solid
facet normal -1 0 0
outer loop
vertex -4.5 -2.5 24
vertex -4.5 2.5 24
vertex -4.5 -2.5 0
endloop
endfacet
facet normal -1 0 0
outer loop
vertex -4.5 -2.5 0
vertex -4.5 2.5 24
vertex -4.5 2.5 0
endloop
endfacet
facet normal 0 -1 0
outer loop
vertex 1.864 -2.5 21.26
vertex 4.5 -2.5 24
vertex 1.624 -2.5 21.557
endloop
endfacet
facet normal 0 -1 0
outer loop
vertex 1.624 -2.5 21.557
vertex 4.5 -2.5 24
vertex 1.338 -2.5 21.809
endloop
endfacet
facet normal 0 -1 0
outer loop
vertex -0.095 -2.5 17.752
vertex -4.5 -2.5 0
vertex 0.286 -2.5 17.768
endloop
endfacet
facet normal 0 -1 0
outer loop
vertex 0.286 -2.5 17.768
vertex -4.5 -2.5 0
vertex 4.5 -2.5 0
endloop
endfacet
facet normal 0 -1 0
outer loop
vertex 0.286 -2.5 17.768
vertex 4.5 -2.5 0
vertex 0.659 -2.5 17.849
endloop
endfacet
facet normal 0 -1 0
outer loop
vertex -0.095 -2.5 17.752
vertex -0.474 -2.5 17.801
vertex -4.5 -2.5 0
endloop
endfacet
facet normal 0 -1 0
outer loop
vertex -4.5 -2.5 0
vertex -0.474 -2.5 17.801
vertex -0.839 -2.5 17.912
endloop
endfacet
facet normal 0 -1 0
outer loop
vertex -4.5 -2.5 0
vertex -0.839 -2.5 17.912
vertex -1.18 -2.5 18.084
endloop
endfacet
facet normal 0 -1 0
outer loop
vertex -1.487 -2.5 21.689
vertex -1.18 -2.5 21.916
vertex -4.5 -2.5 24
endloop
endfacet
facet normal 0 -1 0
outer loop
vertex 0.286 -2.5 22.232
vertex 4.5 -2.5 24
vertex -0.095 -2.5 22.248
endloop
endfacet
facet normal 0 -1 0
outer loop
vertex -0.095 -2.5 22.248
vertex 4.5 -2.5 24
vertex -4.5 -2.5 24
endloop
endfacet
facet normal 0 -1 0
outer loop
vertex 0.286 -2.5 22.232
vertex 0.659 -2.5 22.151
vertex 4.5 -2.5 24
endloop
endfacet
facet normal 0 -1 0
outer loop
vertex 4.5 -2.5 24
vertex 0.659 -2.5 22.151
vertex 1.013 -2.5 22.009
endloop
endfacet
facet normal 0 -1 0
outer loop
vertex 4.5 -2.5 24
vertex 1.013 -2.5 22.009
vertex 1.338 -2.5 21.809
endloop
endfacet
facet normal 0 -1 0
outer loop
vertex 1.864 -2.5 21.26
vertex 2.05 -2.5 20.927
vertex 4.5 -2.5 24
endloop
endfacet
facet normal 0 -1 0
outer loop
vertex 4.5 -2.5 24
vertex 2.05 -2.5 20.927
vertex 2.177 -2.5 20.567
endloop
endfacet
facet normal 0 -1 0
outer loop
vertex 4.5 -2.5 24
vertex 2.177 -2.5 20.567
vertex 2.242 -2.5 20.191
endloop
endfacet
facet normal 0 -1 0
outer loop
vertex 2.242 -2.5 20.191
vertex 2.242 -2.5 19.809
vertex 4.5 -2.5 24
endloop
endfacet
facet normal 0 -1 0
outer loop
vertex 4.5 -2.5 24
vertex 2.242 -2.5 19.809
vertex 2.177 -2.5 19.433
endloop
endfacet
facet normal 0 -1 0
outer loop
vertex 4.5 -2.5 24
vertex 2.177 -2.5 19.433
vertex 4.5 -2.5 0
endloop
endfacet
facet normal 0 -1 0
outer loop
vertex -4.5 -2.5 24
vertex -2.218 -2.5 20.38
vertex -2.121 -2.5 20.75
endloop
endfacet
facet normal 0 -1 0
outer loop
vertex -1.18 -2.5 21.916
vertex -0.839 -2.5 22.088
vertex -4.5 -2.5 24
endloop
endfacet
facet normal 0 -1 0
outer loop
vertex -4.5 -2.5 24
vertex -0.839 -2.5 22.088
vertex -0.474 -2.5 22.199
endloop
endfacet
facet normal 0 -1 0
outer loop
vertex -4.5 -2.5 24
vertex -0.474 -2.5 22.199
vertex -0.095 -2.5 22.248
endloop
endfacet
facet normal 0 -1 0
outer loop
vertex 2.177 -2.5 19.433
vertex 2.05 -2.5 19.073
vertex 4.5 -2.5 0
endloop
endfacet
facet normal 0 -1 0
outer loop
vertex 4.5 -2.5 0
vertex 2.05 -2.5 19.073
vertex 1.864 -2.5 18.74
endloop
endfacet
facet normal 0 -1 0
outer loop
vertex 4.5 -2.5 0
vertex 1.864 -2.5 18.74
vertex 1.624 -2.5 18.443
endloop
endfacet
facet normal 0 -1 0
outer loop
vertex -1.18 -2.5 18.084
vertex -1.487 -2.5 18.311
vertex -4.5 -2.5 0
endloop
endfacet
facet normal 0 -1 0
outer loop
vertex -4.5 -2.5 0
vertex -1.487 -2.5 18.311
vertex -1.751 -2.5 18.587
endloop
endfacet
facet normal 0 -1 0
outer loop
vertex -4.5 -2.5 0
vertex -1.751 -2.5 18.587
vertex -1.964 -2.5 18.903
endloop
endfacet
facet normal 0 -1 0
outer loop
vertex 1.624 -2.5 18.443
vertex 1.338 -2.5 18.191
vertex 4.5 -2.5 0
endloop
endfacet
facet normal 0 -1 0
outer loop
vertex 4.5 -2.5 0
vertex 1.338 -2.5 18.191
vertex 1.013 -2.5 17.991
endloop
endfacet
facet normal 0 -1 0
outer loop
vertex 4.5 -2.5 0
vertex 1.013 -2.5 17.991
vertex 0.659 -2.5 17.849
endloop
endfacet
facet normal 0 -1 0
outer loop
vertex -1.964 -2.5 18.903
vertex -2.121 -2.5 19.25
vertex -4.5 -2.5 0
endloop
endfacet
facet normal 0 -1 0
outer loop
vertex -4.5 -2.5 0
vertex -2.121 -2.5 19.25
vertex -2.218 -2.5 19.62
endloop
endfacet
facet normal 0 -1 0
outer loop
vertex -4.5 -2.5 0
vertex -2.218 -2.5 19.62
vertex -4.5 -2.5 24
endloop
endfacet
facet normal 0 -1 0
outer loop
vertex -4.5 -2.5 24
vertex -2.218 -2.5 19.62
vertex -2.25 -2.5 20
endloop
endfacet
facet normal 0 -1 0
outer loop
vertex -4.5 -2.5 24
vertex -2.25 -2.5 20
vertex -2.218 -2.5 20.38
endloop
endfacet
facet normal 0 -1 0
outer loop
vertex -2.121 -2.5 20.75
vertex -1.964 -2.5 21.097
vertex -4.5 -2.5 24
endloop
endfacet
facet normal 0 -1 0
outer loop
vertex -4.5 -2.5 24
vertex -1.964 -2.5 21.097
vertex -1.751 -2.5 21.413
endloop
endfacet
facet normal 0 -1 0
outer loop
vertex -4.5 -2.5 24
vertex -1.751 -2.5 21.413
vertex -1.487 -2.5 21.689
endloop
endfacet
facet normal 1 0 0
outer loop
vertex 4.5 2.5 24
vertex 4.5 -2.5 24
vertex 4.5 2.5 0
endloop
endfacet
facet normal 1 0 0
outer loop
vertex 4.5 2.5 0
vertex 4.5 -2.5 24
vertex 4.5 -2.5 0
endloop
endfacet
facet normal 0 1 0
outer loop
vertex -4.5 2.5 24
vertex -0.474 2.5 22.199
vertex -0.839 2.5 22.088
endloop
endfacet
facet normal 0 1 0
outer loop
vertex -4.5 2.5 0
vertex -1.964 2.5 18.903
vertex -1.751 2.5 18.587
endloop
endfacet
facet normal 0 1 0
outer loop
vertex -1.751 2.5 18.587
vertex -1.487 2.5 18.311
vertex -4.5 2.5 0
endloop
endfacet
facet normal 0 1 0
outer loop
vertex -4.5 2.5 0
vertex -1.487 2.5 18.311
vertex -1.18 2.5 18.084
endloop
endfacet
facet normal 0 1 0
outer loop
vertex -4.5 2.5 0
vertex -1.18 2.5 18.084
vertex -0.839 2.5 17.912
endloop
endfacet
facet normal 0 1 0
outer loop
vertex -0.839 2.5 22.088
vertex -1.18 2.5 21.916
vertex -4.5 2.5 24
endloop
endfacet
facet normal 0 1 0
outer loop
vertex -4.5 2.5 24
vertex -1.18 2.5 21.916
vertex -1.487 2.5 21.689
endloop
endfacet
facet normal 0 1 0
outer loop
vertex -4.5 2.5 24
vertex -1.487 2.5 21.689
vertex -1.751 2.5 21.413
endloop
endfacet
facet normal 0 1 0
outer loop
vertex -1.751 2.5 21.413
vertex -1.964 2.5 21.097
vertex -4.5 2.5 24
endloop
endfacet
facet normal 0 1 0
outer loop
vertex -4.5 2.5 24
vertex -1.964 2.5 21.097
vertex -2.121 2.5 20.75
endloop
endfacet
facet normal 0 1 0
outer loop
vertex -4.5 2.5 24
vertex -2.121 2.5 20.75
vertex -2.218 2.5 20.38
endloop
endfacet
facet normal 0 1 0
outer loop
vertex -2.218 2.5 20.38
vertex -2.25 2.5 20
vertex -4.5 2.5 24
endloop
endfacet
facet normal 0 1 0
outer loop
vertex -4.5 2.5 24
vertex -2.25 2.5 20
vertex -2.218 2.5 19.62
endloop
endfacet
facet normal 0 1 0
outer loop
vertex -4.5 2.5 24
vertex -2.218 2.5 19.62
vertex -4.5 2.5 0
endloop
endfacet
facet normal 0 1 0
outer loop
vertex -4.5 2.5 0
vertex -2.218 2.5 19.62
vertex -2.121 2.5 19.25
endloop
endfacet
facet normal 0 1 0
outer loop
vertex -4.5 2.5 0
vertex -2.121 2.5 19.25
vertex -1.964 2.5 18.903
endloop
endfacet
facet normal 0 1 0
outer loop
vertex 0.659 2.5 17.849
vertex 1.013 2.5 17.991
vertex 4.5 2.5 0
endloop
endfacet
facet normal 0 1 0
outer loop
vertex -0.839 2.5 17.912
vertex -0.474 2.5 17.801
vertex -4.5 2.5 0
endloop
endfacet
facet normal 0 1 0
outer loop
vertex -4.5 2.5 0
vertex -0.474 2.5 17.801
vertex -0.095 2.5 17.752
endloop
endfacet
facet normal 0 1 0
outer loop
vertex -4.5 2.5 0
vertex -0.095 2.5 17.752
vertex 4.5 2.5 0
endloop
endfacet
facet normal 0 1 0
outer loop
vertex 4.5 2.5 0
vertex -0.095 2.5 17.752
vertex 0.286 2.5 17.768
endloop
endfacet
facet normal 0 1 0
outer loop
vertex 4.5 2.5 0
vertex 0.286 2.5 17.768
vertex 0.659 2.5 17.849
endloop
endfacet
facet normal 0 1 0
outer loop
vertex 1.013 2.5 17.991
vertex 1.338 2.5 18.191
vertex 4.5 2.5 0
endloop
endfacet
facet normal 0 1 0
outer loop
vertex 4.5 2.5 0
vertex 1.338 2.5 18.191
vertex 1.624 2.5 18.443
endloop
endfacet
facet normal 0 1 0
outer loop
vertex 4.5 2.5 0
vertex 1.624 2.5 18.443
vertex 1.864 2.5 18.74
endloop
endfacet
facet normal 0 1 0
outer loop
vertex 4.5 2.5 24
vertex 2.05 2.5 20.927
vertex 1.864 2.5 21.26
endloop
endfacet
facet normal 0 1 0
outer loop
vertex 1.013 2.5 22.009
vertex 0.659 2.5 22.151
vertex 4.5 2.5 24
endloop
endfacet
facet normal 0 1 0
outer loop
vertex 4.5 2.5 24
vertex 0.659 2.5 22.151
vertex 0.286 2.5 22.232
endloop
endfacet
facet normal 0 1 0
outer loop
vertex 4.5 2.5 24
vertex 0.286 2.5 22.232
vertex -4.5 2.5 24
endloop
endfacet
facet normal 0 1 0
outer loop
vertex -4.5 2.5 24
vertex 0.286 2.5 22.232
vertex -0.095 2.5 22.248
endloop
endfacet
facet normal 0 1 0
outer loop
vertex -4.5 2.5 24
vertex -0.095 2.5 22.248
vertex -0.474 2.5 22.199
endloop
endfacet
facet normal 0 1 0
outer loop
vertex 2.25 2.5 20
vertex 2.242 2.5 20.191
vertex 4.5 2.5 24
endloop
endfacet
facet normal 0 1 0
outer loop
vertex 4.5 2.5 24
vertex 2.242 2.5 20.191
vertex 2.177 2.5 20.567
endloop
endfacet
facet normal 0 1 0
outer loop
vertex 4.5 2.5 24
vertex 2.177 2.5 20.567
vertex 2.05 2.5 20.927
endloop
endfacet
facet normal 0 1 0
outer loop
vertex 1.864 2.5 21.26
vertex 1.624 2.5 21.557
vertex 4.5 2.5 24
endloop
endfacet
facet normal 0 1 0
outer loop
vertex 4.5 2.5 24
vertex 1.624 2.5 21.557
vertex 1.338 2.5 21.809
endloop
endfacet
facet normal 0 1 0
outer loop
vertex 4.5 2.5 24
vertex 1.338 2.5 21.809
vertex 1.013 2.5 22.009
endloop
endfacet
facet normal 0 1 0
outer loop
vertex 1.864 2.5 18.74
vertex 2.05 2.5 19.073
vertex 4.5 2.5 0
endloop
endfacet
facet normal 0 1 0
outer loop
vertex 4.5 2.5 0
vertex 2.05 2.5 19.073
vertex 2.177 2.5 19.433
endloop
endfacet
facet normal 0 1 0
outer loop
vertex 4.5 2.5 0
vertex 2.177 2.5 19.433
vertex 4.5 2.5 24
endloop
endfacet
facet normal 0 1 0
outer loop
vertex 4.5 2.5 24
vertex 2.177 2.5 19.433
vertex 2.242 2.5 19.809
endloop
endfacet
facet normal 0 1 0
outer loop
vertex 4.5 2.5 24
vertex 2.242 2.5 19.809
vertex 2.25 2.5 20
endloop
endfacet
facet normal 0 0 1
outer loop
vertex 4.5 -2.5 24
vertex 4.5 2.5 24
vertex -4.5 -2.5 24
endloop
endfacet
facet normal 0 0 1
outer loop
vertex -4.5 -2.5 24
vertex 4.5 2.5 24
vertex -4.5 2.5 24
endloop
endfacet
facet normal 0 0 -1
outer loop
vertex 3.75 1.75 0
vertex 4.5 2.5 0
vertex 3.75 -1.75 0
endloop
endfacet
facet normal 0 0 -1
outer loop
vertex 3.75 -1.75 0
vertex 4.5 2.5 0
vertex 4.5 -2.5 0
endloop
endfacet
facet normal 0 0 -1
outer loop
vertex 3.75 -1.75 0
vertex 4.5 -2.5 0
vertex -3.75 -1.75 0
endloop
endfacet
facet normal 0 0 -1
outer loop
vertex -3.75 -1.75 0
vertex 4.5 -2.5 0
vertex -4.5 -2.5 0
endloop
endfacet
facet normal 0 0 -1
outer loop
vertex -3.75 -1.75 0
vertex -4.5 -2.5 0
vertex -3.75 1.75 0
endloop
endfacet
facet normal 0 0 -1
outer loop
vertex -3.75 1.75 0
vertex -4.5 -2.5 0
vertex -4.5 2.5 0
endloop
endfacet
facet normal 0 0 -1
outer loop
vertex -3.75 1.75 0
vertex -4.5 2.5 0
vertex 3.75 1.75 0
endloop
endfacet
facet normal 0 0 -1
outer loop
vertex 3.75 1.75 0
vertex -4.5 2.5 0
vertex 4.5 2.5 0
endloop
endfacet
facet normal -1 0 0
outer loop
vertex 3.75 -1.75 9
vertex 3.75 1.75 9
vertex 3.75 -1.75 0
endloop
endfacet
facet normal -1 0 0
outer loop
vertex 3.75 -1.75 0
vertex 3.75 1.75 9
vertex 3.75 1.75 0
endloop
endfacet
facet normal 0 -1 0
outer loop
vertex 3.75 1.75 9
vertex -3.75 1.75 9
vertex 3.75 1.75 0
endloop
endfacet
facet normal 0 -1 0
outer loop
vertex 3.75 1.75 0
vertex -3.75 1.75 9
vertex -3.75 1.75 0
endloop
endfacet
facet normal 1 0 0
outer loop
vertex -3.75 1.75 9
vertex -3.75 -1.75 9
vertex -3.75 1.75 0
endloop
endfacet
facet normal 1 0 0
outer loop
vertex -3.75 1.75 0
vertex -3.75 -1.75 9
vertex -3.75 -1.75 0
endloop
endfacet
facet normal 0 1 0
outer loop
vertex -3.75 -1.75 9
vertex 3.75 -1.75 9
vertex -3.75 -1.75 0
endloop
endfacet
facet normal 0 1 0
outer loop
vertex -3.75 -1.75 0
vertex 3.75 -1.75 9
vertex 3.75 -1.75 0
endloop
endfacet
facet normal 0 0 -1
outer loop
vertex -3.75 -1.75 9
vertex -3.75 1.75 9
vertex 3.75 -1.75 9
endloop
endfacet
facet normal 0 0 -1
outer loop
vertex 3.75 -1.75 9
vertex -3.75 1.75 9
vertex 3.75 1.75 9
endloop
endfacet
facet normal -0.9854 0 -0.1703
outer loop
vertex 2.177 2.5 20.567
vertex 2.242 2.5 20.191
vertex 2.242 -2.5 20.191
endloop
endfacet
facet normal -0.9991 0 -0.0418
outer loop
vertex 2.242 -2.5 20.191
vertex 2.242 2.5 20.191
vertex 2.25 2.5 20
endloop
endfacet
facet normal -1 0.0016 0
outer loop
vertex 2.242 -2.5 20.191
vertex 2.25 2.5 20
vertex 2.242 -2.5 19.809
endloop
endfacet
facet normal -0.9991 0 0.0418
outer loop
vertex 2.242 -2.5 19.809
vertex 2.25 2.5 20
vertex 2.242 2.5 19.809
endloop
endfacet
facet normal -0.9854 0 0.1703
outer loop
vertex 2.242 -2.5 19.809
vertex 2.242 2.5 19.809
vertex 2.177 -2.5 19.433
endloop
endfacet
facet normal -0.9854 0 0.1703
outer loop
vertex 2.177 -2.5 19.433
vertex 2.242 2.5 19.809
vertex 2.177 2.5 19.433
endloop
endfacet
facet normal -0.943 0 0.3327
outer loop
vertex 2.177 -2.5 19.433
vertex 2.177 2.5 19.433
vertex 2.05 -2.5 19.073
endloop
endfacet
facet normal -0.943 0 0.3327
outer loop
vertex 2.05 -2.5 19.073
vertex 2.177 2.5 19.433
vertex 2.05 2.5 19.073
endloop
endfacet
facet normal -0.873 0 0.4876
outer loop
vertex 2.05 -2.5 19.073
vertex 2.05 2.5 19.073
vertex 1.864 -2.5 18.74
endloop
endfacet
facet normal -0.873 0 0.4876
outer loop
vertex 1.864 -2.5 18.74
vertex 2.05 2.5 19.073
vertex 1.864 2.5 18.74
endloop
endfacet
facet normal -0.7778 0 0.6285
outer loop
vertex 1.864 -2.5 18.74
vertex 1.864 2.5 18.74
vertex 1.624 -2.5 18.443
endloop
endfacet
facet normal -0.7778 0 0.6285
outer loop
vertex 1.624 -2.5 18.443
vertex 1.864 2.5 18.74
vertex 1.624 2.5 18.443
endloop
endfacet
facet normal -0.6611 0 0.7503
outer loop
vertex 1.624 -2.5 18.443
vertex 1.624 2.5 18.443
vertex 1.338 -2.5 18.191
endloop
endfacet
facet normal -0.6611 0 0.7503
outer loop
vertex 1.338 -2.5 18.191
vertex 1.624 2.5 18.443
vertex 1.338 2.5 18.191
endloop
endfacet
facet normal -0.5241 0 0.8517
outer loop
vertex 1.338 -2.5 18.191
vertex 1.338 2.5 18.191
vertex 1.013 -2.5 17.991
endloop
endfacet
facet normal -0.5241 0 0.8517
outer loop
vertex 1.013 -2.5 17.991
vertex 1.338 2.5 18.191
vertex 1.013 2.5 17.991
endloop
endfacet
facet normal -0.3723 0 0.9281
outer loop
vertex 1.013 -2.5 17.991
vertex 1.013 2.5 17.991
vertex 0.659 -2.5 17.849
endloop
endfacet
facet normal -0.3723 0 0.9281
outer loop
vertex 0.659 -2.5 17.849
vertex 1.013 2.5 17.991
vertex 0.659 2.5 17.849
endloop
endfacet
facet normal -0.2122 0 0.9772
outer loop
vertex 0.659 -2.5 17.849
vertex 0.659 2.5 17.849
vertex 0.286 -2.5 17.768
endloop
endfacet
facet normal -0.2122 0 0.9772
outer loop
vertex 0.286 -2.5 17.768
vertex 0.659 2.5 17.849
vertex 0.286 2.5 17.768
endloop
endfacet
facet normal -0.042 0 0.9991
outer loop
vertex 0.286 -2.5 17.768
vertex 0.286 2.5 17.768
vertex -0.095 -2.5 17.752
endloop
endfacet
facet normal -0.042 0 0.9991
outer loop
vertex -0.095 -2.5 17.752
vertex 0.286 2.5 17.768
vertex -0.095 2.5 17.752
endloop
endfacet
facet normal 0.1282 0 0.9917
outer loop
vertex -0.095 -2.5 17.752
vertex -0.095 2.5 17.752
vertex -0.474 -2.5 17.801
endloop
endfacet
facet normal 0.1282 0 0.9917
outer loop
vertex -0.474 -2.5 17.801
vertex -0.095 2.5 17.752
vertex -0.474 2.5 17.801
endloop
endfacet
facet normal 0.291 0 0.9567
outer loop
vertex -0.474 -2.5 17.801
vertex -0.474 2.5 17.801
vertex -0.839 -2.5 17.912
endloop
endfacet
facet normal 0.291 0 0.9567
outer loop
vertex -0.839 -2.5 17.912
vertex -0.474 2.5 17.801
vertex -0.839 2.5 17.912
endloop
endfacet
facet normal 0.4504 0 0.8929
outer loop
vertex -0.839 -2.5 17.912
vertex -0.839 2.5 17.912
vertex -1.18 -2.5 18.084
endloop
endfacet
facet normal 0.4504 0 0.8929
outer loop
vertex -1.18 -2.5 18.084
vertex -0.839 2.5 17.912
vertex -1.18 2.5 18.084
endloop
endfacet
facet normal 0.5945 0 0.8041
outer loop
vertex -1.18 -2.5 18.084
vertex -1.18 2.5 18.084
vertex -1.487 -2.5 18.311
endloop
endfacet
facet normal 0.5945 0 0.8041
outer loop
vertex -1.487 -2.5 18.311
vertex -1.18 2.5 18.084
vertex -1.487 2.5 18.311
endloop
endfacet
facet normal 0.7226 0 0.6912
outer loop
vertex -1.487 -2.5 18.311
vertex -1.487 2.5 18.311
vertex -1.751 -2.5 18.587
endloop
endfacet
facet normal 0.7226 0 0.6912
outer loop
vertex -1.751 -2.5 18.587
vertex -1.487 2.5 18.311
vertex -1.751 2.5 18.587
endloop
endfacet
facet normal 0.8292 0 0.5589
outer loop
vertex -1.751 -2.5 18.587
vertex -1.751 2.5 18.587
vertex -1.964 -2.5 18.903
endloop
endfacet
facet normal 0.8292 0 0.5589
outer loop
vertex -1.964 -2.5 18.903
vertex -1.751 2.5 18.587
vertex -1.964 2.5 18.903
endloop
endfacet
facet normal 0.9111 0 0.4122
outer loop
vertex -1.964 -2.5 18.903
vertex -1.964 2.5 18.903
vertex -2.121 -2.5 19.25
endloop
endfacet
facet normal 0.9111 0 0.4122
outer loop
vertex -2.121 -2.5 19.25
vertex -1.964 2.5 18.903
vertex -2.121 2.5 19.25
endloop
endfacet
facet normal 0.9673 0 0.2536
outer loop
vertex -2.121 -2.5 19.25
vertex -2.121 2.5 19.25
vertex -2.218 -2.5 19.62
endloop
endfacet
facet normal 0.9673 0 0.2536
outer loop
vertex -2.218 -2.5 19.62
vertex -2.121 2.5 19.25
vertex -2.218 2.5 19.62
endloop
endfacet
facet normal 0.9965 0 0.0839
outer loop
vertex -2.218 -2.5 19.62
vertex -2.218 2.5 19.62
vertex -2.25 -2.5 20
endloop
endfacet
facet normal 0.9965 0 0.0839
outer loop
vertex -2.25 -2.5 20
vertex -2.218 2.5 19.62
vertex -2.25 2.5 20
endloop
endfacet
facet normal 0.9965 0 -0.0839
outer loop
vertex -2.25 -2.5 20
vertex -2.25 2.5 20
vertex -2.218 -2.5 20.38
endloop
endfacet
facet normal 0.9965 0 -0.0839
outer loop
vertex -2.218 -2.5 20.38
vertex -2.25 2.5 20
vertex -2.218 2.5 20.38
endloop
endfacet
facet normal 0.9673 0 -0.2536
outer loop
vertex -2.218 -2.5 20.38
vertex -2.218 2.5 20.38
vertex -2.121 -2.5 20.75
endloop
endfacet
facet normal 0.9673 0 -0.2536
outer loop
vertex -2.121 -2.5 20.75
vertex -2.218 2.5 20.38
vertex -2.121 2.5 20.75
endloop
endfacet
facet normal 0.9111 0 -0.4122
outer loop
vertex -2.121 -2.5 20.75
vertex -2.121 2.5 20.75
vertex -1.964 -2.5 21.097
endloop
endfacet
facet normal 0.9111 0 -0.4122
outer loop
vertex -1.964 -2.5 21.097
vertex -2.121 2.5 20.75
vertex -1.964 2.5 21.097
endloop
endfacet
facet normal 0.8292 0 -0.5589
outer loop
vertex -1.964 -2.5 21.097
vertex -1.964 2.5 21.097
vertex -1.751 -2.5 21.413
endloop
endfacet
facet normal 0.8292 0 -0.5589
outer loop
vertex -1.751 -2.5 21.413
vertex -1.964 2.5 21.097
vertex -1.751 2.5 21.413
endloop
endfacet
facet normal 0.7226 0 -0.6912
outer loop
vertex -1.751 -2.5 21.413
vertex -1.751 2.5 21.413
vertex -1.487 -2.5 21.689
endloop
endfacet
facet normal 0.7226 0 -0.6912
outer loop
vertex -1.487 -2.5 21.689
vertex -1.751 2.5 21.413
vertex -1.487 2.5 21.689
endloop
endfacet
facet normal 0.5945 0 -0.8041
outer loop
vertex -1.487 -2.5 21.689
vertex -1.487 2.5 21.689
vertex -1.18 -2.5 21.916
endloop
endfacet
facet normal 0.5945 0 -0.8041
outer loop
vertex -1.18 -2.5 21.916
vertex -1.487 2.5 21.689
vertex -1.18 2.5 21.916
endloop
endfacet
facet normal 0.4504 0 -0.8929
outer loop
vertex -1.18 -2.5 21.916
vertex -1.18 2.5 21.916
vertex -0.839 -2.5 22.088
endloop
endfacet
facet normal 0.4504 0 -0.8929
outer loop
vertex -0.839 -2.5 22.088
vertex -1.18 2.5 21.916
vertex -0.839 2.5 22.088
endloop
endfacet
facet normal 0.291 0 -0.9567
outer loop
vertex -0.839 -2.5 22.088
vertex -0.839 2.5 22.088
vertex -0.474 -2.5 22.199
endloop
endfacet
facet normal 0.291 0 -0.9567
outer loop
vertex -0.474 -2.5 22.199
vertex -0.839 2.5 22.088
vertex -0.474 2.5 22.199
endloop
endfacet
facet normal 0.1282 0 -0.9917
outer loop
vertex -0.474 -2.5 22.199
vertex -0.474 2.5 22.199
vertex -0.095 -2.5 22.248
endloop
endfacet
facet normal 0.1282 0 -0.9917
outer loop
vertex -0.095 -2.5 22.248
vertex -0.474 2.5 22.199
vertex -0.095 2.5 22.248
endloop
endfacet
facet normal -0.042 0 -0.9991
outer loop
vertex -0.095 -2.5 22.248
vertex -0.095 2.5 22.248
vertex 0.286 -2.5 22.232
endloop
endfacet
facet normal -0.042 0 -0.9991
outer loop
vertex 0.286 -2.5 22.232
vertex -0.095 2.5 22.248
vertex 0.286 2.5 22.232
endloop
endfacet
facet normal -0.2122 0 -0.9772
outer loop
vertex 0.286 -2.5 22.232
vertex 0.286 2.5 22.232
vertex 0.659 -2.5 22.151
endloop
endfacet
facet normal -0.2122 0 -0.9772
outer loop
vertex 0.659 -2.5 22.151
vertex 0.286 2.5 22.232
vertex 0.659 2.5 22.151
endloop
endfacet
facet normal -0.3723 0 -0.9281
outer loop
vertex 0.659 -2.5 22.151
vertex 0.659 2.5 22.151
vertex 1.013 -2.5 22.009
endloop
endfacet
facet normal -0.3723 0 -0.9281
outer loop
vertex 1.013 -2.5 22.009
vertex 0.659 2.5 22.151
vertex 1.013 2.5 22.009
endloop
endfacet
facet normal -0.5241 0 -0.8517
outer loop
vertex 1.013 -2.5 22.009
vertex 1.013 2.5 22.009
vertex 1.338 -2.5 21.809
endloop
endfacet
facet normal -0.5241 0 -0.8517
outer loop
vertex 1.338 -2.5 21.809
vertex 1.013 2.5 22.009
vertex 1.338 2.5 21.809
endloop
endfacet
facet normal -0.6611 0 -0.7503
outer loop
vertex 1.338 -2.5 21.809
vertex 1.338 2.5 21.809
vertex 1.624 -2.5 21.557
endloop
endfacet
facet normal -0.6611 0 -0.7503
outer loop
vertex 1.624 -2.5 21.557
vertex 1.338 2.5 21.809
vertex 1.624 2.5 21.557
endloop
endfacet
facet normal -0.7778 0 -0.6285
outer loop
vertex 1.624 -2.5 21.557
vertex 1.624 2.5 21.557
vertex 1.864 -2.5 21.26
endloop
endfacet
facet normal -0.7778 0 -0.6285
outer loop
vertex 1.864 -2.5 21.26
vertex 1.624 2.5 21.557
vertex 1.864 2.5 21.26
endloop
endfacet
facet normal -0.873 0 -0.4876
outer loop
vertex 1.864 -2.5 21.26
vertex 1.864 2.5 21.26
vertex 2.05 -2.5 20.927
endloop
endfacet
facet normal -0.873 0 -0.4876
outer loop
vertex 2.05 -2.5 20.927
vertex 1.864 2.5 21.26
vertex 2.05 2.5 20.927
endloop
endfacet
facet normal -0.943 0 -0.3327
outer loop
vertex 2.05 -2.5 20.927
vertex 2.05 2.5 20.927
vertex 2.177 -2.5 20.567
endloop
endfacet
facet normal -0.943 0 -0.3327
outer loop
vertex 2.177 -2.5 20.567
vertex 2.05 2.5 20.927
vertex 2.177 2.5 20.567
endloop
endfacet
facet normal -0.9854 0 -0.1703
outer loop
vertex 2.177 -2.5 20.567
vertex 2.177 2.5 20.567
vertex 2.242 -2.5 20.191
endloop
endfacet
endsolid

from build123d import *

# Parameters (mm, degrees)
CROQUIS1_W              = 9
CROQUIS1_H              = 5
SALIENTE_EXTRUIR1_DEPTH = 24
CROQUIS2_W              = 7.5
CROQUIS2_H              = 3.5
CORTAR_EXTRUIR1_DEPTH   = 9
CROQUIS3_R              = 2.25
CORTAR_EXTRUIR2_DEPTH   = 9


with BuildPart() as part:
    # Croquis1 → Saliente-Extruir1 (new body)
    with BuildSketch(Plane.XY):
        Rectangle(CROQUIS1_W, CROQUIS1_H)
    extrude(amount=SALIENTE_EXTRUIR1_DEPTH)

    # Croquis2 → Cortar-Extruir1 (cut)
    with BuildSketch(Plane(origin=(0, 0, 0), x_dir=(-1, 0, 0), z_dir=(0, 0, -1))):
        Rectangle(CROQUIS2_W, CROQUIS2_H)
    extrude(amount=-CORTAR_EXTRUIR1_DEPTH, mode=Mode.SUBTRACT)

    # Croquis3 → Cortar-Extruir2 (cut)
    with BuildSketch(Plane(origin=(0, 2.5, 0), x_dir=(1, 0, 0), z_dir=(0, 1, 0))):
        with Locations(Location((0, -20, 0), (0, 0, 180))):
            Circle(CROQUIS3_R)
    extrude(amount=-CORTAR_EXTRUIR2_DEPTH, mode=Mode.SUBTRACT)


solid = part.part
